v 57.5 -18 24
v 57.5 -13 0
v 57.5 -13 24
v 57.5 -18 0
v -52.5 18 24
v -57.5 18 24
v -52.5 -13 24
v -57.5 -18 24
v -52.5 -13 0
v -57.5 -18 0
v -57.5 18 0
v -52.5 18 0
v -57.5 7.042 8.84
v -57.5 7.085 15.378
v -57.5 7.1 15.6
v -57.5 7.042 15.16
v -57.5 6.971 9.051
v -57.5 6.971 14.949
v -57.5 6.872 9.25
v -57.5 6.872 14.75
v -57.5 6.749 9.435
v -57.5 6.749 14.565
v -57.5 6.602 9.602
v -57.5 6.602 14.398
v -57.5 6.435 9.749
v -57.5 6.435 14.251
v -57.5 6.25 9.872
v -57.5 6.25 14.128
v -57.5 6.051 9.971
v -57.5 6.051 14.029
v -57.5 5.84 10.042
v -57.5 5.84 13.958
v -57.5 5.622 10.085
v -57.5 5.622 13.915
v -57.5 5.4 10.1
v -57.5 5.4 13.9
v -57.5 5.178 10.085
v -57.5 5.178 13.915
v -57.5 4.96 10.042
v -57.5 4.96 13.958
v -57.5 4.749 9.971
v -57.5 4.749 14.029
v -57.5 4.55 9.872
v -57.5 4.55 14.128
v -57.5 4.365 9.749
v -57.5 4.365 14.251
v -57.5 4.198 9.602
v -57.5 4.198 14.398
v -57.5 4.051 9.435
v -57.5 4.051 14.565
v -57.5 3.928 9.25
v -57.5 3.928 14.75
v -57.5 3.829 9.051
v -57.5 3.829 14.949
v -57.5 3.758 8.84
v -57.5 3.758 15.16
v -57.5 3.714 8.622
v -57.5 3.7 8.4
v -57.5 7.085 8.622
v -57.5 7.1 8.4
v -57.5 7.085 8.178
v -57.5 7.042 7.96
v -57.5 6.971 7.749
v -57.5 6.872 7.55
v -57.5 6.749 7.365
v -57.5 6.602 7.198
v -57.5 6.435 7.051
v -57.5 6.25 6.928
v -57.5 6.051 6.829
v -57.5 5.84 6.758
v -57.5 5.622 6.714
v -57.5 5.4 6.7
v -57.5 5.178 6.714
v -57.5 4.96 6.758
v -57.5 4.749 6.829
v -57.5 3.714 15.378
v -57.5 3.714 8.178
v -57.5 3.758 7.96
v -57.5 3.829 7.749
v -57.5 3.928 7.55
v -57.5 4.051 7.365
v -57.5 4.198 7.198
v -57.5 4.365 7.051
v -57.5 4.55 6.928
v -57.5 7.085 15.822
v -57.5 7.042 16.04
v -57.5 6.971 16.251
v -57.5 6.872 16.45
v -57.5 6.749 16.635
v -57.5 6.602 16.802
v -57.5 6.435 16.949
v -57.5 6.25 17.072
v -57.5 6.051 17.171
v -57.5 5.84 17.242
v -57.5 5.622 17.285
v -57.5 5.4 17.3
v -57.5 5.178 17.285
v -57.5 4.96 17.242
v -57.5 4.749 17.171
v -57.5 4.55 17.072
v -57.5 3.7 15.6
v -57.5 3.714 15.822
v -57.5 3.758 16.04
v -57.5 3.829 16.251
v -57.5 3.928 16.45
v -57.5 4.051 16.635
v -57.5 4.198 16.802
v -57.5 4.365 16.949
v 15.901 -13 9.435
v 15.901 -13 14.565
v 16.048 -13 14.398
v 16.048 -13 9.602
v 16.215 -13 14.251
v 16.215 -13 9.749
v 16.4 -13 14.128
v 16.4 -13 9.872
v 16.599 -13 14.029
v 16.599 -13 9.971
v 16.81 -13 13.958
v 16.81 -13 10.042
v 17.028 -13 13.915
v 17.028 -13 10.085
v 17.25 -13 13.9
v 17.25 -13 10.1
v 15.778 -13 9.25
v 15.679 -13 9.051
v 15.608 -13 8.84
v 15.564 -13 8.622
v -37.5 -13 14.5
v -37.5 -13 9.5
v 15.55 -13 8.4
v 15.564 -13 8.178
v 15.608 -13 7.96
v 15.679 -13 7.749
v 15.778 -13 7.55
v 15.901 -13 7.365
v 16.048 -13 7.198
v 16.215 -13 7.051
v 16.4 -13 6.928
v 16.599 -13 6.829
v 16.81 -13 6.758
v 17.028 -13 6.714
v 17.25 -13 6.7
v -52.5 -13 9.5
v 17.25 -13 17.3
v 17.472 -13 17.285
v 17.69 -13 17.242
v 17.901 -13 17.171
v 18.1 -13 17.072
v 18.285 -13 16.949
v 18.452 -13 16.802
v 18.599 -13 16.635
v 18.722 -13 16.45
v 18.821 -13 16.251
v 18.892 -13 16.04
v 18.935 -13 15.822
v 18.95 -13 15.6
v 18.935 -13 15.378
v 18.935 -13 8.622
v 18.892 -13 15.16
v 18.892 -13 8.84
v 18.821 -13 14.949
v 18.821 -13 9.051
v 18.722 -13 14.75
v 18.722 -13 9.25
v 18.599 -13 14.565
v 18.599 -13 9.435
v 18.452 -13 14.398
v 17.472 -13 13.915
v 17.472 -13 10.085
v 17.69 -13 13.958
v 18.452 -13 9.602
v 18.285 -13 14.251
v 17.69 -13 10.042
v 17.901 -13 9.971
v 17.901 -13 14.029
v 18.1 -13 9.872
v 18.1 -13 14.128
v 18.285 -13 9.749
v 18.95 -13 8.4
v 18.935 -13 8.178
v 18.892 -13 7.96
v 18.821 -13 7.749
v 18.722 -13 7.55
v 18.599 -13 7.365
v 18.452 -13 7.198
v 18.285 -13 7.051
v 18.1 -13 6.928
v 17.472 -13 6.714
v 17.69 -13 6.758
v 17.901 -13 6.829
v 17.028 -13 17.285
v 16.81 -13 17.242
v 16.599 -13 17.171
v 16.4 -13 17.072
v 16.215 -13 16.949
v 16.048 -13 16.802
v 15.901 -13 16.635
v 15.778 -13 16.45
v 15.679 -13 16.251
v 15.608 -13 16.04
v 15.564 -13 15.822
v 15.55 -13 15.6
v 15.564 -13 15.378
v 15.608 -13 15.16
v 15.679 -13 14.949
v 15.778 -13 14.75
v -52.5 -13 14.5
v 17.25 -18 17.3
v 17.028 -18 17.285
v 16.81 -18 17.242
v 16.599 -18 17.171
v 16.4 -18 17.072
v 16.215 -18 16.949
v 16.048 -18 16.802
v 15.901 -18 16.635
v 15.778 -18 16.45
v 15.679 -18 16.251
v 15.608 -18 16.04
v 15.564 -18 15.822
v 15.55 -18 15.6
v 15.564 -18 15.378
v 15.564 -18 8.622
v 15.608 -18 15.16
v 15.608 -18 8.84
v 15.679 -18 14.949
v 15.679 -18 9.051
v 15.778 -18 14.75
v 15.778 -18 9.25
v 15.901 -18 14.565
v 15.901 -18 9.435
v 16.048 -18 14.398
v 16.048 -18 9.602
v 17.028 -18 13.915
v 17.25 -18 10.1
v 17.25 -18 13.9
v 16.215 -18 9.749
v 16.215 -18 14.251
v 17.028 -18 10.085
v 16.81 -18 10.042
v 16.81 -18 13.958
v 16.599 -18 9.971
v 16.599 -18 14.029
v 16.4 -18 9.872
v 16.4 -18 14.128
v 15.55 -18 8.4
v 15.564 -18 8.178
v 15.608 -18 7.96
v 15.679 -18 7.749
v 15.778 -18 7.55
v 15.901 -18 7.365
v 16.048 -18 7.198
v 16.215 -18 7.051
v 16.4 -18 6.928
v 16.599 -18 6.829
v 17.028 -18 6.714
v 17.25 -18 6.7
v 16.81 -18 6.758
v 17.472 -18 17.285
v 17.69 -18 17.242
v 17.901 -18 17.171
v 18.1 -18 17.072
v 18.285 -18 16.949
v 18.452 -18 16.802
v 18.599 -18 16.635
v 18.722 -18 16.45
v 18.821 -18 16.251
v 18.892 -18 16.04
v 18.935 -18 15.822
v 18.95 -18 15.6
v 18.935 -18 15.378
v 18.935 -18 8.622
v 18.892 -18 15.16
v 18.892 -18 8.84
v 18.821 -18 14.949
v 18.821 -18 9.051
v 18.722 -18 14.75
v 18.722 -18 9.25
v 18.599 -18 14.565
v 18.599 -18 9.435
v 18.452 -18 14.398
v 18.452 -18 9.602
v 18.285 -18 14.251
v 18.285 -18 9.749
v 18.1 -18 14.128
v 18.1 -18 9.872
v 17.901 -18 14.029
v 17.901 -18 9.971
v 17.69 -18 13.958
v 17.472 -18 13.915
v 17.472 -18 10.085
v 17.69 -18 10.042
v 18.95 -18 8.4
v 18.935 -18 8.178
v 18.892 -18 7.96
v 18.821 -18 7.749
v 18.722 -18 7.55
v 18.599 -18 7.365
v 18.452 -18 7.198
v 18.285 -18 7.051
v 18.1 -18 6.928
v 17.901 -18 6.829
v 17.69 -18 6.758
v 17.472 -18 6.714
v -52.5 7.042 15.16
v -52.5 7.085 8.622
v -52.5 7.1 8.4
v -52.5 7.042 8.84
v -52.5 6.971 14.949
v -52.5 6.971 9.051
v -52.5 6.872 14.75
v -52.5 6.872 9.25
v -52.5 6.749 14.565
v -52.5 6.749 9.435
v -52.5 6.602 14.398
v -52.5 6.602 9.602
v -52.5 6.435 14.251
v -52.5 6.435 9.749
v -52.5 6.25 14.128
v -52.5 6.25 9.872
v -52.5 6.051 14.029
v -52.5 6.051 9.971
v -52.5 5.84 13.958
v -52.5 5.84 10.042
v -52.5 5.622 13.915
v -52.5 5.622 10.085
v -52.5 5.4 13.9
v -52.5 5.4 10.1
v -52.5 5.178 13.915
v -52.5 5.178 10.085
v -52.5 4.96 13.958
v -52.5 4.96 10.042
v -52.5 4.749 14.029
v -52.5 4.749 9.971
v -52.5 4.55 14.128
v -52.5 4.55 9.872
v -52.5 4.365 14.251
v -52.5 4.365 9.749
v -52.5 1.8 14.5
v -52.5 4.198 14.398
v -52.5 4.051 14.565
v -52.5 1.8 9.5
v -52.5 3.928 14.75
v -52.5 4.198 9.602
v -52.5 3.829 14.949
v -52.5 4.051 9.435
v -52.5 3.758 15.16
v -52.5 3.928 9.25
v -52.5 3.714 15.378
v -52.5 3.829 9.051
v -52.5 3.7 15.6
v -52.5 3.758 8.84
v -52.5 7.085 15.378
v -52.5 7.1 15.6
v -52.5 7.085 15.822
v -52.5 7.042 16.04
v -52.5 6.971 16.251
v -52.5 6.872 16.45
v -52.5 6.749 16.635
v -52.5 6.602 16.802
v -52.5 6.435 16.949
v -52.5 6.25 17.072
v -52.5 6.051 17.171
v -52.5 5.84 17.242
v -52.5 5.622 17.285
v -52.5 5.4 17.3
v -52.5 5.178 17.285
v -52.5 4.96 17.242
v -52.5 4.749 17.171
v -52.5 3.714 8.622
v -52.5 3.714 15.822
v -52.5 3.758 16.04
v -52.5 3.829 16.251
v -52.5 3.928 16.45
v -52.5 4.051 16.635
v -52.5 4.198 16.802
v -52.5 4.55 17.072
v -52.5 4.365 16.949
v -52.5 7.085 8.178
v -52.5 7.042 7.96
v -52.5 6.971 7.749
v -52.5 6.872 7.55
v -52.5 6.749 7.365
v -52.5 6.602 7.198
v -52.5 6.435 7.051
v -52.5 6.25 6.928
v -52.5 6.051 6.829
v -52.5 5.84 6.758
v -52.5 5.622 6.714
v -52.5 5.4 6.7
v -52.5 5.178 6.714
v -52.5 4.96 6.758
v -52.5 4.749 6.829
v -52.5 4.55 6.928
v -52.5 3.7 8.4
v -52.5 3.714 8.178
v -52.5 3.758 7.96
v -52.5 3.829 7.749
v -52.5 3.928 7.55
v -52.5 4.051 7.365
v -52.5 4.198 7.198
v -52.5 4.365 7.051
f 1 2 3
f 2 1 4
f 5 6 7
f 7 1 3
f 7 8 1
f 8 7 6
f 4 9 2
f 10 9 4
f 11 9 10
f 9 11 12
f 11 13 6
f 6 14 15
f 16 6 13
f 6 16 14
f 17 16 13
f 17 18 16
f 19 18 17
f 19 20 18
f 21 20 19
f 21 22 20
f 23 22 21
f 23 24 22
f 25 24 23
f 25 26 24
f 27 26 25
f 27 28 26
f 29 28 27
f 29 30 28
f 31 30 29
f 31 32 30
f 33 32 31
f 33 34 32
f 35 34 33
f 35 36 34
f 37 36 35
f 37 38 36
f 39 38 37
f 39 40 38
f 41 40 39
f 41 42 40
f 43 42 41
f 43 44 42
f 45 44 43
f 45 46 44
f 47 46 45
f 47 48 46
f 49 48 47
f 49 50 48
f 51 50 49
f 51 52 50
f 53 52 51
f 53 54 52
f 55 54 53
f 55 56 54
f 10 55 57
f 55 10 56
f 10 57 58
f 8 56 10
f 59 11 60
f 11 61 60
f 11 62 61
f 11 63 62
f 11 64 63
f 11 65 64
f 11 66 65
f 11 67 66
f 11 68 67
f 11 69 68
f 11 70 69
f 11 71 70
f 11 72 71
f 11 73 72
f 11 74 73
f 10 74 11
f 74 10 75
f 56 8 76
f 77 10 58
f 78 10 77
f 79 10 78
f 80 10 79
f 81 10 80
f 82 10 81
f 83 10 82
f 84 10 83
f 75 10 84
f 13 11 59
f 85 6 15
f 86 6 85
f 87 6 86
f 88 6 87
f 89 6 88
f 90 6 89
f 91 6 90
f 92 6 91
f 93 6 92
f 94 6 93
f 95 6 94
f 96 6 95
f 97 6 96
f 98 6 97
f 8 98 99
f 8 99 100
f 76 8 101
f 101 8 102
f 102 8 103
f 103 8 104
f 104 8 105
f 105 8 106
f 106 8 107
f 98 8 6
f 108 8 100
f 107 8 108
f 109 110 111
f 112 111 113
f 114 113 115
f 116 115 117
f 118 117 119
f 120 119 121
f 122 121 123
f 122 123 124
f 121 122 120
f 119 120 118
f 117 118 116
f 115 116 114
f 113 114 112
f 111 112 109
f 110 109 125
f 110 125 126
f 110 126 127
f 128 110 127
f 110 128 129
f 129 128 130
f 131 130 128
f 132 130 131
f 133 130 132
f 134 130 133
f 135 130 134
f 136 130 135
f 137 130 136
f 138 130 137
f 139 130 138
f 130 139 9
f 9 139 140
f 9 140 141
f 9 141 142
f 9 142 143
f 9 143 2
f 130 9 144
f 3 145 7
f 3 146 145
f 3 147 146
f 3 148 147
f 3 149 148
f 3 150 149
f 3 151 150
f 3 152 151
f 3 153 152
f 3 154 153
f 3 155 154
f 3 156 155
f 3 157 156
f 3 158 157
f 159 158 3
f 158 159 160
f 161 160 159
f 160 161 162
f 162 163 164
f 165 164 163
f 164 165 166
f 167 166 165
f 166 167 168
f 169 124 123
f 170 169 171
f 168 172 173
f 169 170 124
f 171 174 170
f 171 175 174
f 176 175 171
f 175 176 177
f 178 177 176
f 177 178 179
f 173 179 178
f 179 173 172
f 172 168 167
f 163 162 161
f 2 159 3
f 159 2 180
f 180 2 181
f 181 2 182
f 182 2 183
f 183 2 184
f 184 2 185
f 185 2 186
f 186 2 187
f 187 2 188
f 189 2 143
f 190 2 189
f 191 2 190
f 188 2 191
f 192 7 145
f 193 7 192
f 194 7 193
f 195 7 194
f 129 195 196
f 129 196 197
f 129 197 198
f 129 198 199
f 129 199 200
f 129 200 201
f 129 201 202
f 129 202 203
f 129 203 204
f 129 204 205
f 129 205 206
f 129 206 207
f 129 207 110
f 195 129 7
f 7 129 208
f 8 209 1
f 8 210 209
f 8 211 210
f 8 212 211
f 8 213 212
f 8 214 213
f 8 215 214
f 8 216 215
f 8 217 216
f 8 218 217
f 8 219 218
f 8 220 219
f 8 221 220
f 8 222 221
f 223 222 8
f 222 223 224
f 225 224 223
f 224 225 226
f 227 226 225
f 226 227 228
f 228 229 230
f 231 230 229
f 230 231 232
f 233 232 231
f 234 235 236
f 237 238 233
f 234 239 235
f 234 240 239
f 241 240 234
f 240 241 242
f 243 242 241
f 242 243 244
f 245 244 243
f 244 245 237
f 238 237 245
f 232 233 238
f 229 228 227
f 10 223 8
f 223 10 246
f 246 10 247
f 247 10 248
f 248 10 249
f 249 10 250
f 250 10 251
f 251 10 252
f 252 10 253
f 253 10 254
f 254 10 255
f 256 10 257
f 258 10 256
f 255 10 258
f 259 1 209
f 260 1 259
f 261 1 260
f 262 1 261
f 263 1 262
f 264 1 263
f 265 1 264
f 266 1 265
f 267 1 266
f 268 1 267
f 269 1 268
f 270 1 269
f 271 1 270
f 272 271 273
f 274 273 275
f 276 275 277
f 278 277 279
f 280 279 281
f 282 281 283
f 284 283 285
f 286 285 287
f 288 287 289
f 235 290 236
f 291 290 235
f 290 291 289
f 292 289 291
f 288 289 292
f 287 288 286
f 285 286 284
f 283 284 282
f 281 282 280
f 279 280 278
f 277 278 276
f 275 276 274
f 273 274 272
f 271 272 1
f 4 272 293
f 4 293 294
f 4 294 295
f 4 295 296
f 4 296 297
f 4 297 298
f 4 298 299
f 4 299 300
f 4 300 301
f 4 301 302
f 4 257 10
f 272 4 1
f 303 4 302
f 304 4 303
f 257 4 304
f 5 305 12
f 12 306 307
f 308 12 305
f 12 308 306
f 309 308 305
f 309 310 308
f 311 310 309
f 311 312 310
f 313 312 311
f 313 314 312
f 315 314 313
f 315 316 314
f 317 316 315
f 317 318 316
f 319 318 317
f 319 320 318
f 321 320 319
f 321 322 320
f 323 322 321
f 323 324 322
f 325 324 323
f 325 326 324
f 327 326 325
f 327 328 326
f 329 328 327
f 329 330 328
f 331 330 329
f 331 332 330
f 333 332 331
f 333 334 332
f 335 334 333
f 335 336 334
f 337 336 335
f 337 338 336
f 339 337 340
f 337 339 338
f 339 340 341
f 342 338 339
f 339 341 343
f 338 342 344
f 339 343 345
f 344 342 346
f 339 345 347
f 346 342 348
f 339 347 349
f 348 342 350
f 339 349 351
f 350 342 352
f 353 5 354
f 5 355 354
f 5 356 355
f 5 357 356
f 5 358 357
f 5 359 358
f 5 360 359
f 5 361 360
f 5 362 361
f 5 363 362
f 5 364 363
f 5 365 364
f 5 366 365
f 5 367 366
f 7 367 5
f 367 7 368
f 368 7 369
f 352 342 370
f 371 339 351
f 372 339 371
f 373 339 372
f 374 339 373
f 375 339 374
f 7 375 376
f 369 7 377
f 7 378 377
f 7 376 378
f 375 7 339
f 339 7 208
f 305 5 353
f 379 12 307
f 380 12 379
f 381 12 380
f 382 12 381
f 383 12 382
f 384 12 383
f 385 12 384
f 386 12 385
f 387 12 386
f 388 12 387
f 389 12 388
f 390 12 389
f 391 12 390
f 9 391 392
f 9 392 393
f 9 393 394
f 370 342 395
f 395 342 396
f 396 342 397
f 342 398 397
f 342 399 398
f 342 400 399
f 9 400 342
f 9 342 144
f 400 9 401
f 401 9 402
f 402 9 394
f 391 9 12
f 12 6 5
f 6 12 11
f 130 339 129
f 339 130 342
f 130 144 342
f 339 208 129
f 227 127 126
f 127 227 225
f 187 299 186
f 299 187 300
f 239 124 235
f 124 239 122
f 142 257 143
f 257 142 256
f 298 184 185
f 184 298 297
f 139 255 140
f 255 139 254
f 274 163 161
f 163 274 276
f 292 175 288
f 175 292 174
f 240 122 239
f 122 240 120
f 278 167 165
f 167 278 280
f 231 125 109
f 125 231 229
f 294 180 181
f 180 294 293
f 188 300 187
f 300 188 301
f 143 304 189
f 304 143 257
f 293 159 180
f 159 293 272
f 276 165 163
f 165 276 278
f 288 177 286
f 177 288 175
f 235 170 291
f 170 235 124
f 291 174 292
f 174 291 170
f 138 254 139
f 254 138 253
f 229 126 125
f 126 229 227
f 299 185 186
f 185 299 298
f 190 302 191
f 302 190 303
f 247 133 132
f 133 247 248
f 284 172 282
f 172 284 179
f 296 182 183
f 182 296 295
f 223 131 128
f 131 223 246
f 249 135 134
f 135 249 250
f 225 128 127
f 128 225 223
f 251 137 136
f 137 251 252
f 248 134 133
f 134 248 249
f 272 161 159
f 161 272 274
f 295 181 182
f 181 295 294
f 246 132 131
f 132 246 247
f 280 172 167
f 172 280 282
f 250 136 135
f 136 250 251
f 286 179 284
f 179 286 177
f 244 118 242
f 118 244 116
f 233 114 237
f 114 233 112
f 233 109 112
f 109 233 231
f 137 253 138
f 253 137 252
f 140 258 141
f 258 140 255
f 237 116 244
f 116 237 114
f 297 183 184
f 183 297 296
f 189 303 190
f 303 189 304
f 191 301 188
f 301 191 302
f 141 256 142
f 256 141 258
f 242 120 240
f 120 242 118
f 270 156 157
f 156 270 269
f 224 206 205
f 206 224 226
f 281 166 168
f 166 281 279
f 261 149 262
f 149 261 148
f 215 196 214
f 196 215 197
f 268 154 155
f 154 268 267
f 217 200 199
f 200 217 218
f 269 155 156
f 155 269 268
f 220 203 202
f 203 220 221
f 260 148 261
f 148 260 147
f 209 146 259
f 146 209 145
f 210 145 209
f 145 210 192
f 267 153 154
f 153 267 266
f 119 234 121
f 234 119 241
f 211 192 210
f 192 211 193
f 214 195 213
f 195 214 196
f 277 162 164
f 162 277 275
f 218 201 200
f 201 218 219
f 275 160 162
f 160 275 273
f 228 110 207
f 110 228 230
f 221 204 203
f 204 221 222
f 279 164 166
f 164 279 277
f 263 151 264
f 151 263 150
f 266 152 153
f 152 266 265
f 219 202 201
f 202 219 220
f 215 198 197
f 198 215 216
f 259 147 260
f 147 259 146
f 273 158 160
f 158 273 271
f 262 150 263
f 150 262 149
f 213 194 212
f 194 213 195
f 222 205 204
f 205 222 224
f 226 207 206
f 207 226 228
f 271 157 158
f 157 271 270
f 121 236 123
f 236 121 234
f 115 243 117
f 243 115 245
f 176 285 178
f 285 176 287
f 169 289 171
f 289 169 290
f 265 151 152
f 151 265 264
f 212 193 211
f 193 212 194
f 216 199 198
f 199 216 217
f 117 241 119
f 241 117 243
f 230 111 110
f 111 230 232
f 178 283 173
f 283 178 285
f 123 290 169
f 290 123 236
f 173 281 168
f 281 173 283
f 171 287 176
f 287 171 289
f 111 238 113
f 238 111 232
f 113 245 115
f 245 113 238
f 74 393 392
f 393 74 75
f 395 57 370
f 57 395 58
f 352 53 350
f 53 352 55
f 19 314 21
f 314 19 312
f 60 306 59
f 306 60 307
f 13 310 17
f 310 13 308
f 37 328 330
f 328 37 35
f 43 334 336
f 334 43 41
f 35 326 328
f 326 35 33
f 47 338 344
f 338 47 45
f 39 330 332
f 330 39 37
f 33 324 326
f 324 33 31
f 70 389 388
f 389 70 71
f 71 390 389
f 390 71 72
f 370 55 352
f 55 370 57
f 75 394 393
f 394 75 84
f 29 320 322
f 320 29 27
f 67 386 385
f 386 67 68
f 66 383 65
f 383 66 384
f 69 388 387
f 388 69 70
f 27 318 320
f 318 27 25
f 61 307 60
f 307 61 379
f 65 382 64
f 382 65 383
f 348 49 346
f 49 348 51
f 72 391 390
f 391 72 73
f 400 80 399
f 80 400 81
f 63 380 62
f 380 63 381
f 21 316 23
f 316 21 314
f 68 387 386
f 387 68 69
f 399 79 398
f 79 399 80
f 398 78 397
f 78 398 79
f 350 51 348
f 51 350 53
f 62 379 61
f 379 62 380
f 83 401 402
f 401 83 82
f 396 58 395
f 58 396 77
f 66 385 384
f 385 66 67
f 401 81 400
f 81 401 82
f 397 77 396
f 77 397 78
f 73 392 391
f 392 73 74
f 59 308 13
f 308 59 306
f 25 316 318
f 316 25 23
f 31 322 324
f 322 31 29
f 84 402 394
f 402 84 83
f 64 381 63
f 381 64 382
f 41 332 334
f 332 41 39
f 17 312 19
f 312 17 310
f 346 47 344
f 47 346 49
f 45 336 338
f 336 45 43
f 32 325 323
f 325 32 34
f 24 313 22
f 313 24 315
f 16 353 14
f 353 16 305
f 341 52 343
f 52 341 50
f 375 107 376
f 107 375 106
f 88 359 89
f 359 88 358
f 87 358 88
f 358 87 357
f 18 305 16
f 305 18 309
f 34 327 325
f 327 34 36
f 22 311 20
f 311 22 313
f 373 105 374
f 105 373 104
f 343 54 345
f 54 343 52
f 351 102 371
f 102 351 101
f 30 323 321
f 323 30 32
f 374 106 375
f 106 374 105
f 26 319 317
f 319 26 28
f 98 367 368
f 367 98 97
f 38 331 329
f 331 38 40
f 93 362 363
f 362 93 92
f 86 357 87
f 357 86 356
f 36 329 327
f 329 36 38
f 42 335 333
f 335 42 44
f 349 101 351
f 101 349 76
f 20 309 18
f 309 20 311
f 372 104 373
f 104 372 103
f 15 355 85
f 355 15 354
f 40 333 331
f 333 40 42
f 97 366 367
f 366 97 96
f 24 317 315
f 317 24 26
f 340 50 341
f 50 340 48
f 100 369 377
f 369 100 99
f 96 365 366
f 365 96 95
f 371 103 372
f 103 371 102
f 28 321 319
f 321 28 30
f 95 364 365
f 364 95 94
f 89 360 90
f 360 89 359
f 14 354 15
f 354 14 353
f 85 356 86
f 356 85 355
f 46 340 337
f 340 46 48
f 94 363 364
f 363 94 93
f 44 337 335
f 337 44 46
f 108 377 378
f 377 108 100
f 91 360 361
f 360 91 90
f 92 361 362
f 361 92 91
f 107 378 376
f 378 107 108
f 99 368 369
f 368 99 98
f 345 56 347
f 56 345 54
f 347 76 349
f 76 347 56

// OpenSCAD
// ============================================================================
// Get Me An Alt — Parametric OpenSCAD Module
// Part: PRT-03 — Fold-Out Articulated All-Terrain Outrigger Legs (×4) (outTrigger-leg)
// Function: Stabilizes the slider track against tipping during telephoto tilts.
// Target Bounding Box (mm): [115, 36, 24]
// Print Material: PETG | Min Wall: >= 1.6mm | Tolerance: 0.2mm
// ============================================================================
$fn = 48;
part_width = 115;
part_depth = 36;
part_height = 24;
wall_thickness = 3.6;
floor_thickness = 3.6;
corner_radius = 5;
tolerance = 0.2;
m3_clearance_d = 3.4; // M3 screw clearance hole (3.0mm + 2*0.2mm)

module rounded_rect_prism(w, d, h, r) {
  cr = max(0.5, min(r, min(w, d) / 2 - 0.1));
  linear_extrude(height = h)
    offset(r = cr)
      offset(r = -cr)
        square([w, d], center = true);
}

module part_outTrigger_leg() {
  t = 5;
  translate([-part_width / 2, -part_depth / 2, 0])
  difference() {
    union() {
      // Horizontal leg A
      cube([part_width, t, part_height]);
      // Vertical leg B
      cube([t, part_depth, part_height]);
      // Corner gusset rib
      translate([0, 0, part_height * 0.5 - t * 0.5])
        linear_extrude(height = t)
          polygon(points = [[t, t], [min(part_width * 0.55, 20), t], [t, min(part_depth * 0.55, 20)]]);
    }
    // M3 mounting holes on leg A
    translate([part_width * 0.65, t + 1, part_height * 0.35])
      rotate([90, 0, 0]) cylinder(h = t + 2, d = m3_clearance_d);
    translate([part_width * 0.65, t + 1, part_height * 0.65])
      rotate([90, 0, 0]) cylinder(h = t + 2, d = m3_clearance_d);
    // M3 mounting holes on leg B
    translate([-1, part_depth * 0.65, part_height * 0.35])
      rotate([0, 90, 0]) cylinder(h = t + 2, d = m3_clearance_d);
    translate([-1, part_depth * 0.65, part_height * 0.65])
      rotate([0, 90, 0]) cylinder(h = t + 2, d = m3_clearance_d);
  }
}

part_outTrigger_leg();
